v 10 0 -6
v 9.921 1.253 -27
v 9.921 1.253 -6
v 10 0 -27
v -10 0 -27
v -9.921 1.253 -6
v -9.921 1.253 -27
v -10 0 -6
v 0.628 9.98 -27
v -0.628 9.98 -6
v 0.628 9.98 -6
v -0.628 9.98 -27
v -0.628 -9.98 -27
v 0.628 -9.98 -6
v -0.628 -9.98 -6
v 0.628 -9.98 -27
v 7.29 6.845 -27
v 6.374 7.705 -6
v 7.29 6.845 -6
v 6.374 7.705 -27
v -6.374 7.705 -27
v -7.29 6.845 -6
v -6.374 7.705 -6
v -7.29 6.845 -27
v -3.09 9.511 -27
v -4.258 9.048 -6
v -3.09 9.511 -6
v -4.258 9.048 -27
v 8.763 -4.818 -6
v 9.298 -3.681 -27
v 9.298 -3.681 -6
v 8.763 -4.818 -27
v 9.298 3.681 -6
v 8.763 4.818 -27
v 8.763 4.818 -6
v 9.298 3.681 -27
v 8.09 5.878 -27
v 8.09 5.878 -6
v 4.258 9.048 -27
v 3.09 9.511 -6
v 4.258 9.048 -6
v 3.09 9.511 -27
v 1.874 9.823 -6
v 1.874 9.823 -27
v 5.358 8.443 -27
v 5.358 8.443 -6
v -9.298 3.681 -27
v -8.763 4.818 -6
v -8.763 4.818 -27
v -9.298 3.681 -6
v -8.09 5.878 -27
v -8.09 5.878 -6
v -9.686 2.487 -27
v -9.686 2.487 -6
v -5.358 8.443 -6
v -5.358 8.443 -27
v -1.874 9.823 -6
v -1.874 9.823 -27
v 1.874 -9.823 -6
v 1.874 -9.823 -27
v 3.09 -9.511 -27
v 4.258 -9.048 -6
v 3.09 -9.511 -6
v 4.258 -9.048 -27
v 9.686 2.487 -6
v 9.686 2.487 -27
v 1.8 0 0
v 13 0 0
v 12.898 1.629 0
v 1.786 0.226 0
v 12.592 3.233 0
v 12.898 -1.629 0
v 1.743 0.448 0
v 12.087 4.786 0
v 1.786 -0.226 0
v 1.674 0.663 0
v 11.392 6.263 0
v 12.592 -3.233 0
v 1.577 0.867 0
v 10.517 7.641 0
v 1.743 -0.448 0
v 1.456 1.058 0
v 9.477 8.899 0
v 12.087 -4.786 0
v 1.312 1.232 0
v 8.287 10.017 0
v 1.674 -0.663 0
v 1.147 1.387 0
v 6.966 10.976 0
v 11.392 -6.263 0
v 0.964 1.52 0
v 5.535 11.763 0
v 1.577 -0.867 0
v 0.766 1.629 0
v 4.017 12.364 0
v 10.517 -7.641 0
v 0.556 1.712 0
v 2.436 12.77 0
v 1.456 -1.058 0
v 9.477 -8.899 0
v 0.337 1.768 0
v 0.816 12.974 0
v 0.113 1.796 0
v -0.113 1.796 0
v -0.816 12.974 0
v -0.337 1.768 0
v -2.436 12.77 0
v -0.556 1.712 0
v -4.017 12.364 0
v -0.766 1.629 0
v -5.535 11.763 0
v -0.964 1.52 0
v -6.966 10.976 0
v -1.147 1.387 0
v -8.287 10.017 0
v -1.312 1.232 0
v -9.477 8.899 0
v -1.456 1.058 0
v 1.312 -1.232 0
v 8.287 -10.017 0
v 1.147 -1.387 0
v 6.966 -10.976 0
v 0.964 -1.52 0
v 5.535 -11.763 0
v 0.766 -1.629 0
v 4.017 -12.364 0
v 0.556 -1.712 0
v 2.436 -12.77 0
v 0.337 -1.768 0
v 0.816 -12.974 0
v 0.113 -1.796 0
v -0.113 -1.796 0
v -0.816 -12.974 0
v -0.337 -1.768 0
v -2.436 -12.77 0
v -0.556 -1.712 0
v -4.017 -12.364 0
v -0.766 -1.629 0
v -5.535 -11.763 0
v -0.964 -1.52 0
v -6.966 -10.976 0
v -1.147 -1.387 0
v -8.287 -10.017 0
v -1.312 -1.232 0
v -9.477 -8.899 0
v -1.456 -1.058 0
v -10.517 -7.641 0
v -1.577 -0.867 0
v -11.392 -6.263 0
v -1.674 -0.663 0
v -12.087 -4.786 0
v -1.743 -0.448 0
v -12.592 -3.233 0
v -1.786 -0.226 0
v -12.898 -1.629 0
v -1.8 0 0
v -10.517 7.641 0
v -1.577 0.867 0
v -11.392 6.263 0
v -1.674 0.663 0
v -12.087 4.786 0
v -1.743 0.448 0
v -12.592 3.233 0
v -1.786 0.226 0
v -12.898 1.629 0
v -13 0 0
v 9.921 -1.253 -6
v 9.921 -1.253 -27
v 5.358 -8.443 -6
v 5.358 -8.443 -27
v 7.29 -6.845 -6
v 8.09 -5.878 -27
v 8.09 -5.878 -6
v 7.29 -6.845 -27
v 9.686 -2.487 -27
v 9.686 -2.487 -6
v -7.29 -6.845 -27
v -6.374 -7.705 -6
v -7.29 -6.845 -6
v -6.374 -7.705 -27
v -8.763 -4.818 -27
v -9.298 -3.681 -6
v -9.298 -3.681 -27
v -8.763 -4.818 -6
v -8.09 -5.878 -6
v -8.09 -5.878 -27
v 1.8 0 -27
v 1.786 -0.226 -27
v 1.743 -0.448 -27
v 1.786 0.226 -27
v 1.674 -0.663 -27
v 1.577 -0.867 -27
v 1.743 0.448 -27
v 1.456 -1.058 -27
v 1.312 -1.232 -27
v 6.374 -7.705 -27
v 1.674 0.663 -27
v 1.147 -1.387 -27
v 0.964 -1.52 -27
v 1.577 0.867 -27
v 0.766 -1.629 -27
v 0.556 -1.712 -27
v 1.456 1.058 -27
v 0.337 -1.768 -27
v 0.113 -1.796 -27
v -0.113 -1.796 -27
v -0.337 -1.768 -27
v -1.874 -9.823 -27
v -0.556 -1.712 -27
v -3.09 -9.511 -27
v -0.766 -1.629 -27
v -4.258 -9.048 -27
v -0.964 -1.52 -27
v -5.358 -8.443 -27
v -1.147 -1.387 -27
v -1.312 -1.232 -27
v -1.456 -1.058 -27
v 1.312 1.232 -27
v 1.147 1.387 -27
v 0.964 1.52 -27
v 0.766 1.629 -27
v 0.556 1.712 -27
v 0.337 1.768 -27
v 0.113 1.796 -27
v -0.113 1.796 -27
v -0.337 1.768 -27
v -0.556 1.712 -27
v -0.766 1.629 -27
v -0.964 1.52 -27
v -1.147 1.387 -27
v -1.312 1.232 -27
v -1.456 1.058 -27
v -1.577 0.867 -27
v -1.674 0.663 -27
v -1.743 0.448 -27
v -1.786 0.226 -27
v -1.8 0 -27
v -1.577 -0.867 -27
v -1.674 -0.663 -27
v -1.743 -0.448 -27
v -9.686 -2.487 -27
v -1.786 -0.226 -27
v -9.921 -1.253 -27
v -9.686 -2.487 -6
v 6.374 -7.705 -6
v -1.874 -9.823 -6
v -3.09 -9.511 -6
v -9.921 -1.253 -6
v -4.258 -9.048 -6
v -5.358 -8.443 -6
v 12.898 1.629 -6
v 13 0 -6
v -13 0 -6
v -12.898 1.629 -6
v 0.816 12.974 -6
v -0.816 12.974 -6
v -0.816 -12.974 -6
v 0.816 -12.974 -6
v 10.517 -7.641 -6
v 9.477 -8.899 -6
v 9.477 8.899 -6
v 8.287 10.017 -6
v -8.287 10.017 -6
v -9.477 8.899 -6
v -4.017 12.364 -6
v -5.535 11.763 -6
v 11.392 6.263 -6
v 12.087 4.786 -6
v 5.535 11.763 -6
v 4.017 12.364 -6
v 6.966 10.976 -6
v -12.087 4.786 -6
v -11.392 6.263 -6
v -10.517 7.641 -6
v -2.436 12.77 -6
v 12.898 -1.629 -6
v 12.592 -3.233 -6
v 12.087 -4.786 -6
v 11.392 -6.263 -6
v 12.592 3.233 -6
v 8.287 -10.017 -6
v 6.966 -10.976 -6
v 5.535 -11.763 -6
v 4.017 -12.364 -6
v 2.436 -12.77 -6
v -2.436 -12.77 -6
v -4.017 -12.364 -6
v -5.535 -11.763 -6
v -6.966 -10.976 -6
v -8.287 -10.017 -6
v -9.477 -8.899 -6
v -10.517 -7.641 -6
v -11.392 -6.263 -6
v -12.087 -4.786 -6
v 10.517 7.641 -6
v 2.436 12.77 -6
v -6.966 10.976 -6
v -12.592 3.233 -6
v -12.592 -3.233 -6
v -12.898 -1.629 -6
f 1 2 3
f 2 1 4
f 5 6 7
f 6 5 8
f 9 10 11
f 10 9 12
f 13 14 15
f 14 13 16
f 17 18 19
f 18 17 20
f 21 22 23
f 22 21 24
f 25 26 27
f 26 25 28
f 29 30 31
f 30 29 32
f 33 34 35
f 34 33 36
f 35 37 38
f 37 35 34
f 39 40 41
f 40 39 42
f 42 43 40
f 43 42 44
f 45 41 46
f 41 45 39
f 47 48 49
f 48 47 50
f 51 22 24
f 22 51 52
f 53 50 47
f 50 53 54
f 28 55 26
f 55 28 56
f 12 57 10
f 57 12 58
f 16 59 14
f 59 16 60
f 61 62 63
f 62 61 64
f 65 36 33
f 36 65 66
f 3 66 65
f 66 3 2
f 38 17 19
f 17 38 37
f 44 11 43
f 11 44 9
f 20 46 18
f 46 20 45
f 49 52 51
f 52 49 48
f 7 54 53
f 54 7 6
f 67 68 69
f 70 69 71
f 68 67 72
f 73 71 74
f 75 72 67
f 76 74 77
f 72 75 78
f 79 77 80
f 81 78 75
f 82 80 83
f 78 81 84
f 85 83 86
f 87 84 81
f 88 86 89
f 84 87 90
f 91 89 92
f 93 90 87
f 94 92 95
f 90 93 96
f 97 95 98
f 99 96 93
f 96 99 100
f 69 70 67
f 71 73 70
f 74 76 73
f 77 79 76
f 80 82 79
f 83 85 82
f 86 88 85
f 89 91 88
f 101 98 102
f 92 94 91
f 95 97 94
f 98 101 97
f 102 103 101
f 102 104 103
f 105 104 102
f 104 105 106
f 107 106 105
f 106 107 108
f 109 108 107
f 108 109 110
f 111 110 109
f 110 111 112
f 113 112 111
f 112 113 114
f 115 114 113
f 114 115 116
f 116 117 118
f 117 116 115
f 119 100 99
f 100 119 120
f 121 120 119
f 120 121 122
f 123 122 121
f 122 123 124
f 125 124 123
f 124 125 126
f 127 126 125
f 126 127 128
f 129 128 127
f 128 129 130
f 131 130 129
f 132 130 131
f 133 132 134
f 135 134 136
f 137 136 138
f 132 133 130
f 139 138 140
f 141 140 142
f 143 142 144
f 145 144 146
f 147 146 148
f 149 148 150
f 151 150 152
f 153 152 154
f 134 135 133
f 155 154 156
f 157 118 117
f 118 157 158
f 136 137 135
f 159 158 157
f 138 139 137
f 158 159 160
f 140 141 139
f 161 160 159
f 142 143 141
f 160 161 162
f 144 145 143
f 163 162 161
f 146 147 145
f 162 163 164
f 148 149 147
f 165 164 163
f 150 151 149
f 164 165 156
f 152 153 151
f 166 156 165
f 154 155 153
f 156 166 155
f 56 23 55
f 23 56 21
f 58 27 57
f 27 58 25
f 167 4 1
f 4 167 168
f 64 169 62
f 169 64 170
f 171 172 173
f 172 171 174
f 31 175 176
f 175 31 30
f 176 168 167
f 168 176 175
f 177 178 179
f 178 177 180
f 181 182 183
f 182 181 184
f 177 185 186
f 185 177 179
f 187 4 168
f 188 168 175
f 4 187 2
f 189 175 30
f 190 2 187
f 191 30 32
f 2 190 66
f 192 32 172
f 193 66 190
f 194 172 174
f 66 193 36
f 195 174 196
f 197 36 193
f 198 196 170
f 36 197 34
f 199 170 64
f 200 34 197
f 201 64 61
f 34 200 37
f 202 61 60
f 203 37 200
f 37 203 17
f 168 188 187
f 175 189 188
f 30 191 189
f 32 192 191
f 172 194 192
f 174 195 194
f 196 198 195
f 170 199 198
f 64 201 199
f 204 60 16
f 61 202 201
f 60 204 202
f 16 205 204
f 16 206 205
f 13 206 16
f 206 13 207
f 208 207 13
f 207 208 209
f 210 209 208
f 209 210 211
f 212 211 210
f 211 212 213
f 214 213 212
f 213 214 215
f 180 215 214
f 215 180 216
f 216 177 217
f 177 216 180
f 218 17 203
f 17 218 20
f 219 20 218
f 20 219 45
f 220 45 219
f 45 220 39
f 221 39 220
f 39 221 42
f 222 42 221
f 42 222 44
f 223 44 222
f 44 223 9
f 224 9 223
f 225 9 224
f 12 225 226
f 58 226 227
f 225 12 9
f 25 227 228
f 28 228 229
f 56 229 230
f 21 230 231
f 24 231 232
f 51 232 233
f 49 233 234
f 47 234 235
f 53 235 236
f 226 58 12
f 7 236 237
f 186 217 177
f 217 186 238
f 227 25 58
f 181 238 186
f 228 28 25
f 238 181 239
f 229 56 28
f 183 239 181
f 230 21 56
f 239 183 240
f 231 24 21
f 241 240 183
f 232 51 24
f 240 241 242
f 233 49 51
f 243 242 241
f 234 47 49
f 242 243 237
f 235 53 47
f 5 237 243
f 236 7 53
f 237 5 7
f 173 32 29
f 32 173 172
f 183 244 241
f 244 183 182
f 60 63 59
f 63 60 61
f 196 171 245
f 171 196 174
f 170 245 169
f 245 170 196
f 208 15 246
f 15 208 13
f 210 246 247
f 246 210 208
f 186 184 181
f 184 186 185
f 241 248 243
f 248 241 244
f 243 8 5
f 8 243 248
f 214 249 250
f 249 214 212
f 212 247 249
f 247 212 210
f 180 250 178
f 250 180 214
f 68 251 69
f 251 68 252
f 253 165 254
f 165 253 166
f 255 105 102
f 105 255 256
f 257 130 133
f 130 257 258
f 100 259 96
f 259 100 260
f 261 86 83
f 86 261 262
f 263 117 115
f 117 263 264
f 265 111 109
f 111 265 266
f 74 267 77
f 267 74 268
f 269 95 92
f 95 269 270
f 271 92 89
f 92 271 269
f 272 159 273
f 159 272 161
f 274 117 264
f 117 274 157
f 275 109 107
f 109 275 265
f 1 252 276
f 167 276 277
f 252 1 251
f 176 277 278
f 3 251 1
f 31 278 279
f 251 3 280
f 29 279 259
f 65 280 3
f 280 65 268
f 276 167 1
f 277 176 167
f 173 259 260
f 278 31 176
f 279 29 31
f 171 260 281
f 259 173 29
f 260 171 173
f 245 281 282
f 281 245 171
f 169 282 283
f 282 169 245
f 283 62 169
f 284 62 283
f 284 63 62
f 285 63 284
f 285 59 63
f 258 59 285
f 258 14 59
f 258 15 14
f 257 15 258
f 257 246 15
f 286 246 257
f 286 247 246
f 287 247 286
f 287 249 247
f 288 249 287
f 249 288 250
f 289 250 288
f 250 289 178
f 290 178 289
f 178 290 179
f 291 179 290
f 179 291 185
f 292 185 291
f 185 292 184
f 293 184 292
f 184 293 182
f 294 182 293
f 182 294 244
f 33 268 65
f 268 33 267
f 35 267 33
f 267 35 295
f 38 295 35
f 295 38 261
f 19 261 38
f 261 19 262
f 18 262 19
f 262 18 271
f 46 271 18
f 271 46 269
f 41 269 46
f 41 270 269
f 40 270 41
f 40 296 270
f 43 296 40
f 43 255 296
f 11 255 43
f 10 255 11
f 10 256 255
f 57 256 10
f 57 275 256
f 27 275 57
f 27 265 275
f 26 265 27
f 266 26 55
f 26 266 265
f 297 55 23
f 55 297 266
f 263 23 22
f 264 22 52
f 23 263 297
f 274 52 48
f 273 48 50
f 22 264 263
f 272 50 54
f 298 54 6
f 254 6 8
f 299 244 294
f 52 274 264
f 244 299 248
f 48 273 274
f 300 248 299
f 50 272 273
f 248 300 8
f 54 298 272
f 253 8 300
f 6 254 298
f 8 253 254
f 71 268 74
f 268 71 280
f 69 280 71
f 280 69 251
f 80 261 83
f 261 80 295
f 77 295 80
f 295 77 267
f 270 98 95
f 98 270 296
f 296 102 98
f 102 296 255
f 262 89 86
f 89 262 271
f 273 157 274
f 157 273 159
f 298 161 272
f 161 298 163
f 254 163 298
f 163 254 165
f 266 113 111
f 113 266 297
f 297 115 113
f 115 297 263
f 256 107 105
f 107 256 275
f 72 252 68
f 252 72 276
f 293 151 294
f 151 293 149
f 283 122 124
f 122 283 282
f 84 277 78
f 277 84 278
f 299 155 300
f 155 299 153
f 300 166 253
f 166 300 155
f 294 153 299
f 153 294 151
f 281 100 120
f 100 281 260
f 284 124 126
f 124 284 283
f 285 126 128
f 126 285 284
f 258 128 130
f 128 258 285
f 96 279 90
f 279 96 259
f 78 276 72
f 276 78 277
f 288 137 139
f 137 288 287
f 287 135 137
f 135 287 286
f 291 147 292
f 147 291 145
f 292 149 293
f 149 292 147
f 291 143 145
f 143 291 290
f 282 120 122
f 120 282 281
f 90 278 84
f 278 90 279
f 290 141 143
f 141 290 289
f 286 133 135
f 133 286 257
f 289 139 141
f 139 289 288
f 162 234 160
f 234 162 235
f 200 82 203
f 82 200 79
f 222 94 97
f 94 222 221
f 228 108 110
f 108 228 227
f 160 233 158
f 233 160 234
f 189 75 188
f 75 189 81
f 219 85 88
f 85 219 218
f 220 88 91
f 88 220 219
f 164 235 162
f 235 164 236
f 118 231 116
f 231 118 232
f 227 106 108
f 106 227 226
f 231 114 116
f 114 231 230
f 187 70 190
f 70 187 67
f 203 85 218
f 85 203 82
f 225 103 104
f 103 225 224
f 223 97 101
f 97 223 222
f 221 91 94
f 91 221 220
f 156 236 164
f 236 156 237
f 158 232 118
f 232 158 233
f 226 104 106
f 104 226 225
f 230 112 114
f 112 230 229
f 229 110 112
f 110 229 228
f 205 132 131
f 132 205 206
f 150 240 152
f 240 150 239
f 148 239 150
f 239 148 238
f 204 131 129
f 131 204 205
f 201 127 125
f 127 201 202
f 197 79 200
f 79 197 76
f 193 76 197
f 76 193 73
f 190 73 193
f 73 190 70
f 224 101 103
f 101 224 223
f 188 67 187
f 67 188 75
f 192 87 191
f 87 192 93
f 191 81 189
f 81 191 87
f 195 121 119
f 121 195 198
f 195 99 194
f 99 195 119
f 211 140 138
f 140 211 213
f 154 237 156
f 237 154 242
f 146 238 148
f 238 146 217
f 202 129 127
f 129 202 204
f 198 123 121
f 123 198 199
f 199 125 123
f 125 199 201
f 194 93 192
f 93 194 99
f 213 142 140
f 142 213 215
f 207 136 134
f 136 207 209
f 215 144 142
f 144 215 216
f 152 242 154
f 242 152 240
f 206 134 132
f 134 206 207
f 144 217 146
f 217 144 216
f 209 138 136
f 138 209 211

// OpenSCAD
$fn = 50;


difference() {
	union() {
		translate(v = [0, 0, -27.0000000000]) {
			cylinder(h = 27, r = 10.0000000000);
		}
		translate(v = [0, 0, -6.0000000000]) {
			cylinder(h = 6, r = 13.0000000000);
		}
	}
	union() {
		#translate(v = [0, 0, -27]) {
			cylinder(h = 27, r = 1.8000000000);
		}
	}
}
